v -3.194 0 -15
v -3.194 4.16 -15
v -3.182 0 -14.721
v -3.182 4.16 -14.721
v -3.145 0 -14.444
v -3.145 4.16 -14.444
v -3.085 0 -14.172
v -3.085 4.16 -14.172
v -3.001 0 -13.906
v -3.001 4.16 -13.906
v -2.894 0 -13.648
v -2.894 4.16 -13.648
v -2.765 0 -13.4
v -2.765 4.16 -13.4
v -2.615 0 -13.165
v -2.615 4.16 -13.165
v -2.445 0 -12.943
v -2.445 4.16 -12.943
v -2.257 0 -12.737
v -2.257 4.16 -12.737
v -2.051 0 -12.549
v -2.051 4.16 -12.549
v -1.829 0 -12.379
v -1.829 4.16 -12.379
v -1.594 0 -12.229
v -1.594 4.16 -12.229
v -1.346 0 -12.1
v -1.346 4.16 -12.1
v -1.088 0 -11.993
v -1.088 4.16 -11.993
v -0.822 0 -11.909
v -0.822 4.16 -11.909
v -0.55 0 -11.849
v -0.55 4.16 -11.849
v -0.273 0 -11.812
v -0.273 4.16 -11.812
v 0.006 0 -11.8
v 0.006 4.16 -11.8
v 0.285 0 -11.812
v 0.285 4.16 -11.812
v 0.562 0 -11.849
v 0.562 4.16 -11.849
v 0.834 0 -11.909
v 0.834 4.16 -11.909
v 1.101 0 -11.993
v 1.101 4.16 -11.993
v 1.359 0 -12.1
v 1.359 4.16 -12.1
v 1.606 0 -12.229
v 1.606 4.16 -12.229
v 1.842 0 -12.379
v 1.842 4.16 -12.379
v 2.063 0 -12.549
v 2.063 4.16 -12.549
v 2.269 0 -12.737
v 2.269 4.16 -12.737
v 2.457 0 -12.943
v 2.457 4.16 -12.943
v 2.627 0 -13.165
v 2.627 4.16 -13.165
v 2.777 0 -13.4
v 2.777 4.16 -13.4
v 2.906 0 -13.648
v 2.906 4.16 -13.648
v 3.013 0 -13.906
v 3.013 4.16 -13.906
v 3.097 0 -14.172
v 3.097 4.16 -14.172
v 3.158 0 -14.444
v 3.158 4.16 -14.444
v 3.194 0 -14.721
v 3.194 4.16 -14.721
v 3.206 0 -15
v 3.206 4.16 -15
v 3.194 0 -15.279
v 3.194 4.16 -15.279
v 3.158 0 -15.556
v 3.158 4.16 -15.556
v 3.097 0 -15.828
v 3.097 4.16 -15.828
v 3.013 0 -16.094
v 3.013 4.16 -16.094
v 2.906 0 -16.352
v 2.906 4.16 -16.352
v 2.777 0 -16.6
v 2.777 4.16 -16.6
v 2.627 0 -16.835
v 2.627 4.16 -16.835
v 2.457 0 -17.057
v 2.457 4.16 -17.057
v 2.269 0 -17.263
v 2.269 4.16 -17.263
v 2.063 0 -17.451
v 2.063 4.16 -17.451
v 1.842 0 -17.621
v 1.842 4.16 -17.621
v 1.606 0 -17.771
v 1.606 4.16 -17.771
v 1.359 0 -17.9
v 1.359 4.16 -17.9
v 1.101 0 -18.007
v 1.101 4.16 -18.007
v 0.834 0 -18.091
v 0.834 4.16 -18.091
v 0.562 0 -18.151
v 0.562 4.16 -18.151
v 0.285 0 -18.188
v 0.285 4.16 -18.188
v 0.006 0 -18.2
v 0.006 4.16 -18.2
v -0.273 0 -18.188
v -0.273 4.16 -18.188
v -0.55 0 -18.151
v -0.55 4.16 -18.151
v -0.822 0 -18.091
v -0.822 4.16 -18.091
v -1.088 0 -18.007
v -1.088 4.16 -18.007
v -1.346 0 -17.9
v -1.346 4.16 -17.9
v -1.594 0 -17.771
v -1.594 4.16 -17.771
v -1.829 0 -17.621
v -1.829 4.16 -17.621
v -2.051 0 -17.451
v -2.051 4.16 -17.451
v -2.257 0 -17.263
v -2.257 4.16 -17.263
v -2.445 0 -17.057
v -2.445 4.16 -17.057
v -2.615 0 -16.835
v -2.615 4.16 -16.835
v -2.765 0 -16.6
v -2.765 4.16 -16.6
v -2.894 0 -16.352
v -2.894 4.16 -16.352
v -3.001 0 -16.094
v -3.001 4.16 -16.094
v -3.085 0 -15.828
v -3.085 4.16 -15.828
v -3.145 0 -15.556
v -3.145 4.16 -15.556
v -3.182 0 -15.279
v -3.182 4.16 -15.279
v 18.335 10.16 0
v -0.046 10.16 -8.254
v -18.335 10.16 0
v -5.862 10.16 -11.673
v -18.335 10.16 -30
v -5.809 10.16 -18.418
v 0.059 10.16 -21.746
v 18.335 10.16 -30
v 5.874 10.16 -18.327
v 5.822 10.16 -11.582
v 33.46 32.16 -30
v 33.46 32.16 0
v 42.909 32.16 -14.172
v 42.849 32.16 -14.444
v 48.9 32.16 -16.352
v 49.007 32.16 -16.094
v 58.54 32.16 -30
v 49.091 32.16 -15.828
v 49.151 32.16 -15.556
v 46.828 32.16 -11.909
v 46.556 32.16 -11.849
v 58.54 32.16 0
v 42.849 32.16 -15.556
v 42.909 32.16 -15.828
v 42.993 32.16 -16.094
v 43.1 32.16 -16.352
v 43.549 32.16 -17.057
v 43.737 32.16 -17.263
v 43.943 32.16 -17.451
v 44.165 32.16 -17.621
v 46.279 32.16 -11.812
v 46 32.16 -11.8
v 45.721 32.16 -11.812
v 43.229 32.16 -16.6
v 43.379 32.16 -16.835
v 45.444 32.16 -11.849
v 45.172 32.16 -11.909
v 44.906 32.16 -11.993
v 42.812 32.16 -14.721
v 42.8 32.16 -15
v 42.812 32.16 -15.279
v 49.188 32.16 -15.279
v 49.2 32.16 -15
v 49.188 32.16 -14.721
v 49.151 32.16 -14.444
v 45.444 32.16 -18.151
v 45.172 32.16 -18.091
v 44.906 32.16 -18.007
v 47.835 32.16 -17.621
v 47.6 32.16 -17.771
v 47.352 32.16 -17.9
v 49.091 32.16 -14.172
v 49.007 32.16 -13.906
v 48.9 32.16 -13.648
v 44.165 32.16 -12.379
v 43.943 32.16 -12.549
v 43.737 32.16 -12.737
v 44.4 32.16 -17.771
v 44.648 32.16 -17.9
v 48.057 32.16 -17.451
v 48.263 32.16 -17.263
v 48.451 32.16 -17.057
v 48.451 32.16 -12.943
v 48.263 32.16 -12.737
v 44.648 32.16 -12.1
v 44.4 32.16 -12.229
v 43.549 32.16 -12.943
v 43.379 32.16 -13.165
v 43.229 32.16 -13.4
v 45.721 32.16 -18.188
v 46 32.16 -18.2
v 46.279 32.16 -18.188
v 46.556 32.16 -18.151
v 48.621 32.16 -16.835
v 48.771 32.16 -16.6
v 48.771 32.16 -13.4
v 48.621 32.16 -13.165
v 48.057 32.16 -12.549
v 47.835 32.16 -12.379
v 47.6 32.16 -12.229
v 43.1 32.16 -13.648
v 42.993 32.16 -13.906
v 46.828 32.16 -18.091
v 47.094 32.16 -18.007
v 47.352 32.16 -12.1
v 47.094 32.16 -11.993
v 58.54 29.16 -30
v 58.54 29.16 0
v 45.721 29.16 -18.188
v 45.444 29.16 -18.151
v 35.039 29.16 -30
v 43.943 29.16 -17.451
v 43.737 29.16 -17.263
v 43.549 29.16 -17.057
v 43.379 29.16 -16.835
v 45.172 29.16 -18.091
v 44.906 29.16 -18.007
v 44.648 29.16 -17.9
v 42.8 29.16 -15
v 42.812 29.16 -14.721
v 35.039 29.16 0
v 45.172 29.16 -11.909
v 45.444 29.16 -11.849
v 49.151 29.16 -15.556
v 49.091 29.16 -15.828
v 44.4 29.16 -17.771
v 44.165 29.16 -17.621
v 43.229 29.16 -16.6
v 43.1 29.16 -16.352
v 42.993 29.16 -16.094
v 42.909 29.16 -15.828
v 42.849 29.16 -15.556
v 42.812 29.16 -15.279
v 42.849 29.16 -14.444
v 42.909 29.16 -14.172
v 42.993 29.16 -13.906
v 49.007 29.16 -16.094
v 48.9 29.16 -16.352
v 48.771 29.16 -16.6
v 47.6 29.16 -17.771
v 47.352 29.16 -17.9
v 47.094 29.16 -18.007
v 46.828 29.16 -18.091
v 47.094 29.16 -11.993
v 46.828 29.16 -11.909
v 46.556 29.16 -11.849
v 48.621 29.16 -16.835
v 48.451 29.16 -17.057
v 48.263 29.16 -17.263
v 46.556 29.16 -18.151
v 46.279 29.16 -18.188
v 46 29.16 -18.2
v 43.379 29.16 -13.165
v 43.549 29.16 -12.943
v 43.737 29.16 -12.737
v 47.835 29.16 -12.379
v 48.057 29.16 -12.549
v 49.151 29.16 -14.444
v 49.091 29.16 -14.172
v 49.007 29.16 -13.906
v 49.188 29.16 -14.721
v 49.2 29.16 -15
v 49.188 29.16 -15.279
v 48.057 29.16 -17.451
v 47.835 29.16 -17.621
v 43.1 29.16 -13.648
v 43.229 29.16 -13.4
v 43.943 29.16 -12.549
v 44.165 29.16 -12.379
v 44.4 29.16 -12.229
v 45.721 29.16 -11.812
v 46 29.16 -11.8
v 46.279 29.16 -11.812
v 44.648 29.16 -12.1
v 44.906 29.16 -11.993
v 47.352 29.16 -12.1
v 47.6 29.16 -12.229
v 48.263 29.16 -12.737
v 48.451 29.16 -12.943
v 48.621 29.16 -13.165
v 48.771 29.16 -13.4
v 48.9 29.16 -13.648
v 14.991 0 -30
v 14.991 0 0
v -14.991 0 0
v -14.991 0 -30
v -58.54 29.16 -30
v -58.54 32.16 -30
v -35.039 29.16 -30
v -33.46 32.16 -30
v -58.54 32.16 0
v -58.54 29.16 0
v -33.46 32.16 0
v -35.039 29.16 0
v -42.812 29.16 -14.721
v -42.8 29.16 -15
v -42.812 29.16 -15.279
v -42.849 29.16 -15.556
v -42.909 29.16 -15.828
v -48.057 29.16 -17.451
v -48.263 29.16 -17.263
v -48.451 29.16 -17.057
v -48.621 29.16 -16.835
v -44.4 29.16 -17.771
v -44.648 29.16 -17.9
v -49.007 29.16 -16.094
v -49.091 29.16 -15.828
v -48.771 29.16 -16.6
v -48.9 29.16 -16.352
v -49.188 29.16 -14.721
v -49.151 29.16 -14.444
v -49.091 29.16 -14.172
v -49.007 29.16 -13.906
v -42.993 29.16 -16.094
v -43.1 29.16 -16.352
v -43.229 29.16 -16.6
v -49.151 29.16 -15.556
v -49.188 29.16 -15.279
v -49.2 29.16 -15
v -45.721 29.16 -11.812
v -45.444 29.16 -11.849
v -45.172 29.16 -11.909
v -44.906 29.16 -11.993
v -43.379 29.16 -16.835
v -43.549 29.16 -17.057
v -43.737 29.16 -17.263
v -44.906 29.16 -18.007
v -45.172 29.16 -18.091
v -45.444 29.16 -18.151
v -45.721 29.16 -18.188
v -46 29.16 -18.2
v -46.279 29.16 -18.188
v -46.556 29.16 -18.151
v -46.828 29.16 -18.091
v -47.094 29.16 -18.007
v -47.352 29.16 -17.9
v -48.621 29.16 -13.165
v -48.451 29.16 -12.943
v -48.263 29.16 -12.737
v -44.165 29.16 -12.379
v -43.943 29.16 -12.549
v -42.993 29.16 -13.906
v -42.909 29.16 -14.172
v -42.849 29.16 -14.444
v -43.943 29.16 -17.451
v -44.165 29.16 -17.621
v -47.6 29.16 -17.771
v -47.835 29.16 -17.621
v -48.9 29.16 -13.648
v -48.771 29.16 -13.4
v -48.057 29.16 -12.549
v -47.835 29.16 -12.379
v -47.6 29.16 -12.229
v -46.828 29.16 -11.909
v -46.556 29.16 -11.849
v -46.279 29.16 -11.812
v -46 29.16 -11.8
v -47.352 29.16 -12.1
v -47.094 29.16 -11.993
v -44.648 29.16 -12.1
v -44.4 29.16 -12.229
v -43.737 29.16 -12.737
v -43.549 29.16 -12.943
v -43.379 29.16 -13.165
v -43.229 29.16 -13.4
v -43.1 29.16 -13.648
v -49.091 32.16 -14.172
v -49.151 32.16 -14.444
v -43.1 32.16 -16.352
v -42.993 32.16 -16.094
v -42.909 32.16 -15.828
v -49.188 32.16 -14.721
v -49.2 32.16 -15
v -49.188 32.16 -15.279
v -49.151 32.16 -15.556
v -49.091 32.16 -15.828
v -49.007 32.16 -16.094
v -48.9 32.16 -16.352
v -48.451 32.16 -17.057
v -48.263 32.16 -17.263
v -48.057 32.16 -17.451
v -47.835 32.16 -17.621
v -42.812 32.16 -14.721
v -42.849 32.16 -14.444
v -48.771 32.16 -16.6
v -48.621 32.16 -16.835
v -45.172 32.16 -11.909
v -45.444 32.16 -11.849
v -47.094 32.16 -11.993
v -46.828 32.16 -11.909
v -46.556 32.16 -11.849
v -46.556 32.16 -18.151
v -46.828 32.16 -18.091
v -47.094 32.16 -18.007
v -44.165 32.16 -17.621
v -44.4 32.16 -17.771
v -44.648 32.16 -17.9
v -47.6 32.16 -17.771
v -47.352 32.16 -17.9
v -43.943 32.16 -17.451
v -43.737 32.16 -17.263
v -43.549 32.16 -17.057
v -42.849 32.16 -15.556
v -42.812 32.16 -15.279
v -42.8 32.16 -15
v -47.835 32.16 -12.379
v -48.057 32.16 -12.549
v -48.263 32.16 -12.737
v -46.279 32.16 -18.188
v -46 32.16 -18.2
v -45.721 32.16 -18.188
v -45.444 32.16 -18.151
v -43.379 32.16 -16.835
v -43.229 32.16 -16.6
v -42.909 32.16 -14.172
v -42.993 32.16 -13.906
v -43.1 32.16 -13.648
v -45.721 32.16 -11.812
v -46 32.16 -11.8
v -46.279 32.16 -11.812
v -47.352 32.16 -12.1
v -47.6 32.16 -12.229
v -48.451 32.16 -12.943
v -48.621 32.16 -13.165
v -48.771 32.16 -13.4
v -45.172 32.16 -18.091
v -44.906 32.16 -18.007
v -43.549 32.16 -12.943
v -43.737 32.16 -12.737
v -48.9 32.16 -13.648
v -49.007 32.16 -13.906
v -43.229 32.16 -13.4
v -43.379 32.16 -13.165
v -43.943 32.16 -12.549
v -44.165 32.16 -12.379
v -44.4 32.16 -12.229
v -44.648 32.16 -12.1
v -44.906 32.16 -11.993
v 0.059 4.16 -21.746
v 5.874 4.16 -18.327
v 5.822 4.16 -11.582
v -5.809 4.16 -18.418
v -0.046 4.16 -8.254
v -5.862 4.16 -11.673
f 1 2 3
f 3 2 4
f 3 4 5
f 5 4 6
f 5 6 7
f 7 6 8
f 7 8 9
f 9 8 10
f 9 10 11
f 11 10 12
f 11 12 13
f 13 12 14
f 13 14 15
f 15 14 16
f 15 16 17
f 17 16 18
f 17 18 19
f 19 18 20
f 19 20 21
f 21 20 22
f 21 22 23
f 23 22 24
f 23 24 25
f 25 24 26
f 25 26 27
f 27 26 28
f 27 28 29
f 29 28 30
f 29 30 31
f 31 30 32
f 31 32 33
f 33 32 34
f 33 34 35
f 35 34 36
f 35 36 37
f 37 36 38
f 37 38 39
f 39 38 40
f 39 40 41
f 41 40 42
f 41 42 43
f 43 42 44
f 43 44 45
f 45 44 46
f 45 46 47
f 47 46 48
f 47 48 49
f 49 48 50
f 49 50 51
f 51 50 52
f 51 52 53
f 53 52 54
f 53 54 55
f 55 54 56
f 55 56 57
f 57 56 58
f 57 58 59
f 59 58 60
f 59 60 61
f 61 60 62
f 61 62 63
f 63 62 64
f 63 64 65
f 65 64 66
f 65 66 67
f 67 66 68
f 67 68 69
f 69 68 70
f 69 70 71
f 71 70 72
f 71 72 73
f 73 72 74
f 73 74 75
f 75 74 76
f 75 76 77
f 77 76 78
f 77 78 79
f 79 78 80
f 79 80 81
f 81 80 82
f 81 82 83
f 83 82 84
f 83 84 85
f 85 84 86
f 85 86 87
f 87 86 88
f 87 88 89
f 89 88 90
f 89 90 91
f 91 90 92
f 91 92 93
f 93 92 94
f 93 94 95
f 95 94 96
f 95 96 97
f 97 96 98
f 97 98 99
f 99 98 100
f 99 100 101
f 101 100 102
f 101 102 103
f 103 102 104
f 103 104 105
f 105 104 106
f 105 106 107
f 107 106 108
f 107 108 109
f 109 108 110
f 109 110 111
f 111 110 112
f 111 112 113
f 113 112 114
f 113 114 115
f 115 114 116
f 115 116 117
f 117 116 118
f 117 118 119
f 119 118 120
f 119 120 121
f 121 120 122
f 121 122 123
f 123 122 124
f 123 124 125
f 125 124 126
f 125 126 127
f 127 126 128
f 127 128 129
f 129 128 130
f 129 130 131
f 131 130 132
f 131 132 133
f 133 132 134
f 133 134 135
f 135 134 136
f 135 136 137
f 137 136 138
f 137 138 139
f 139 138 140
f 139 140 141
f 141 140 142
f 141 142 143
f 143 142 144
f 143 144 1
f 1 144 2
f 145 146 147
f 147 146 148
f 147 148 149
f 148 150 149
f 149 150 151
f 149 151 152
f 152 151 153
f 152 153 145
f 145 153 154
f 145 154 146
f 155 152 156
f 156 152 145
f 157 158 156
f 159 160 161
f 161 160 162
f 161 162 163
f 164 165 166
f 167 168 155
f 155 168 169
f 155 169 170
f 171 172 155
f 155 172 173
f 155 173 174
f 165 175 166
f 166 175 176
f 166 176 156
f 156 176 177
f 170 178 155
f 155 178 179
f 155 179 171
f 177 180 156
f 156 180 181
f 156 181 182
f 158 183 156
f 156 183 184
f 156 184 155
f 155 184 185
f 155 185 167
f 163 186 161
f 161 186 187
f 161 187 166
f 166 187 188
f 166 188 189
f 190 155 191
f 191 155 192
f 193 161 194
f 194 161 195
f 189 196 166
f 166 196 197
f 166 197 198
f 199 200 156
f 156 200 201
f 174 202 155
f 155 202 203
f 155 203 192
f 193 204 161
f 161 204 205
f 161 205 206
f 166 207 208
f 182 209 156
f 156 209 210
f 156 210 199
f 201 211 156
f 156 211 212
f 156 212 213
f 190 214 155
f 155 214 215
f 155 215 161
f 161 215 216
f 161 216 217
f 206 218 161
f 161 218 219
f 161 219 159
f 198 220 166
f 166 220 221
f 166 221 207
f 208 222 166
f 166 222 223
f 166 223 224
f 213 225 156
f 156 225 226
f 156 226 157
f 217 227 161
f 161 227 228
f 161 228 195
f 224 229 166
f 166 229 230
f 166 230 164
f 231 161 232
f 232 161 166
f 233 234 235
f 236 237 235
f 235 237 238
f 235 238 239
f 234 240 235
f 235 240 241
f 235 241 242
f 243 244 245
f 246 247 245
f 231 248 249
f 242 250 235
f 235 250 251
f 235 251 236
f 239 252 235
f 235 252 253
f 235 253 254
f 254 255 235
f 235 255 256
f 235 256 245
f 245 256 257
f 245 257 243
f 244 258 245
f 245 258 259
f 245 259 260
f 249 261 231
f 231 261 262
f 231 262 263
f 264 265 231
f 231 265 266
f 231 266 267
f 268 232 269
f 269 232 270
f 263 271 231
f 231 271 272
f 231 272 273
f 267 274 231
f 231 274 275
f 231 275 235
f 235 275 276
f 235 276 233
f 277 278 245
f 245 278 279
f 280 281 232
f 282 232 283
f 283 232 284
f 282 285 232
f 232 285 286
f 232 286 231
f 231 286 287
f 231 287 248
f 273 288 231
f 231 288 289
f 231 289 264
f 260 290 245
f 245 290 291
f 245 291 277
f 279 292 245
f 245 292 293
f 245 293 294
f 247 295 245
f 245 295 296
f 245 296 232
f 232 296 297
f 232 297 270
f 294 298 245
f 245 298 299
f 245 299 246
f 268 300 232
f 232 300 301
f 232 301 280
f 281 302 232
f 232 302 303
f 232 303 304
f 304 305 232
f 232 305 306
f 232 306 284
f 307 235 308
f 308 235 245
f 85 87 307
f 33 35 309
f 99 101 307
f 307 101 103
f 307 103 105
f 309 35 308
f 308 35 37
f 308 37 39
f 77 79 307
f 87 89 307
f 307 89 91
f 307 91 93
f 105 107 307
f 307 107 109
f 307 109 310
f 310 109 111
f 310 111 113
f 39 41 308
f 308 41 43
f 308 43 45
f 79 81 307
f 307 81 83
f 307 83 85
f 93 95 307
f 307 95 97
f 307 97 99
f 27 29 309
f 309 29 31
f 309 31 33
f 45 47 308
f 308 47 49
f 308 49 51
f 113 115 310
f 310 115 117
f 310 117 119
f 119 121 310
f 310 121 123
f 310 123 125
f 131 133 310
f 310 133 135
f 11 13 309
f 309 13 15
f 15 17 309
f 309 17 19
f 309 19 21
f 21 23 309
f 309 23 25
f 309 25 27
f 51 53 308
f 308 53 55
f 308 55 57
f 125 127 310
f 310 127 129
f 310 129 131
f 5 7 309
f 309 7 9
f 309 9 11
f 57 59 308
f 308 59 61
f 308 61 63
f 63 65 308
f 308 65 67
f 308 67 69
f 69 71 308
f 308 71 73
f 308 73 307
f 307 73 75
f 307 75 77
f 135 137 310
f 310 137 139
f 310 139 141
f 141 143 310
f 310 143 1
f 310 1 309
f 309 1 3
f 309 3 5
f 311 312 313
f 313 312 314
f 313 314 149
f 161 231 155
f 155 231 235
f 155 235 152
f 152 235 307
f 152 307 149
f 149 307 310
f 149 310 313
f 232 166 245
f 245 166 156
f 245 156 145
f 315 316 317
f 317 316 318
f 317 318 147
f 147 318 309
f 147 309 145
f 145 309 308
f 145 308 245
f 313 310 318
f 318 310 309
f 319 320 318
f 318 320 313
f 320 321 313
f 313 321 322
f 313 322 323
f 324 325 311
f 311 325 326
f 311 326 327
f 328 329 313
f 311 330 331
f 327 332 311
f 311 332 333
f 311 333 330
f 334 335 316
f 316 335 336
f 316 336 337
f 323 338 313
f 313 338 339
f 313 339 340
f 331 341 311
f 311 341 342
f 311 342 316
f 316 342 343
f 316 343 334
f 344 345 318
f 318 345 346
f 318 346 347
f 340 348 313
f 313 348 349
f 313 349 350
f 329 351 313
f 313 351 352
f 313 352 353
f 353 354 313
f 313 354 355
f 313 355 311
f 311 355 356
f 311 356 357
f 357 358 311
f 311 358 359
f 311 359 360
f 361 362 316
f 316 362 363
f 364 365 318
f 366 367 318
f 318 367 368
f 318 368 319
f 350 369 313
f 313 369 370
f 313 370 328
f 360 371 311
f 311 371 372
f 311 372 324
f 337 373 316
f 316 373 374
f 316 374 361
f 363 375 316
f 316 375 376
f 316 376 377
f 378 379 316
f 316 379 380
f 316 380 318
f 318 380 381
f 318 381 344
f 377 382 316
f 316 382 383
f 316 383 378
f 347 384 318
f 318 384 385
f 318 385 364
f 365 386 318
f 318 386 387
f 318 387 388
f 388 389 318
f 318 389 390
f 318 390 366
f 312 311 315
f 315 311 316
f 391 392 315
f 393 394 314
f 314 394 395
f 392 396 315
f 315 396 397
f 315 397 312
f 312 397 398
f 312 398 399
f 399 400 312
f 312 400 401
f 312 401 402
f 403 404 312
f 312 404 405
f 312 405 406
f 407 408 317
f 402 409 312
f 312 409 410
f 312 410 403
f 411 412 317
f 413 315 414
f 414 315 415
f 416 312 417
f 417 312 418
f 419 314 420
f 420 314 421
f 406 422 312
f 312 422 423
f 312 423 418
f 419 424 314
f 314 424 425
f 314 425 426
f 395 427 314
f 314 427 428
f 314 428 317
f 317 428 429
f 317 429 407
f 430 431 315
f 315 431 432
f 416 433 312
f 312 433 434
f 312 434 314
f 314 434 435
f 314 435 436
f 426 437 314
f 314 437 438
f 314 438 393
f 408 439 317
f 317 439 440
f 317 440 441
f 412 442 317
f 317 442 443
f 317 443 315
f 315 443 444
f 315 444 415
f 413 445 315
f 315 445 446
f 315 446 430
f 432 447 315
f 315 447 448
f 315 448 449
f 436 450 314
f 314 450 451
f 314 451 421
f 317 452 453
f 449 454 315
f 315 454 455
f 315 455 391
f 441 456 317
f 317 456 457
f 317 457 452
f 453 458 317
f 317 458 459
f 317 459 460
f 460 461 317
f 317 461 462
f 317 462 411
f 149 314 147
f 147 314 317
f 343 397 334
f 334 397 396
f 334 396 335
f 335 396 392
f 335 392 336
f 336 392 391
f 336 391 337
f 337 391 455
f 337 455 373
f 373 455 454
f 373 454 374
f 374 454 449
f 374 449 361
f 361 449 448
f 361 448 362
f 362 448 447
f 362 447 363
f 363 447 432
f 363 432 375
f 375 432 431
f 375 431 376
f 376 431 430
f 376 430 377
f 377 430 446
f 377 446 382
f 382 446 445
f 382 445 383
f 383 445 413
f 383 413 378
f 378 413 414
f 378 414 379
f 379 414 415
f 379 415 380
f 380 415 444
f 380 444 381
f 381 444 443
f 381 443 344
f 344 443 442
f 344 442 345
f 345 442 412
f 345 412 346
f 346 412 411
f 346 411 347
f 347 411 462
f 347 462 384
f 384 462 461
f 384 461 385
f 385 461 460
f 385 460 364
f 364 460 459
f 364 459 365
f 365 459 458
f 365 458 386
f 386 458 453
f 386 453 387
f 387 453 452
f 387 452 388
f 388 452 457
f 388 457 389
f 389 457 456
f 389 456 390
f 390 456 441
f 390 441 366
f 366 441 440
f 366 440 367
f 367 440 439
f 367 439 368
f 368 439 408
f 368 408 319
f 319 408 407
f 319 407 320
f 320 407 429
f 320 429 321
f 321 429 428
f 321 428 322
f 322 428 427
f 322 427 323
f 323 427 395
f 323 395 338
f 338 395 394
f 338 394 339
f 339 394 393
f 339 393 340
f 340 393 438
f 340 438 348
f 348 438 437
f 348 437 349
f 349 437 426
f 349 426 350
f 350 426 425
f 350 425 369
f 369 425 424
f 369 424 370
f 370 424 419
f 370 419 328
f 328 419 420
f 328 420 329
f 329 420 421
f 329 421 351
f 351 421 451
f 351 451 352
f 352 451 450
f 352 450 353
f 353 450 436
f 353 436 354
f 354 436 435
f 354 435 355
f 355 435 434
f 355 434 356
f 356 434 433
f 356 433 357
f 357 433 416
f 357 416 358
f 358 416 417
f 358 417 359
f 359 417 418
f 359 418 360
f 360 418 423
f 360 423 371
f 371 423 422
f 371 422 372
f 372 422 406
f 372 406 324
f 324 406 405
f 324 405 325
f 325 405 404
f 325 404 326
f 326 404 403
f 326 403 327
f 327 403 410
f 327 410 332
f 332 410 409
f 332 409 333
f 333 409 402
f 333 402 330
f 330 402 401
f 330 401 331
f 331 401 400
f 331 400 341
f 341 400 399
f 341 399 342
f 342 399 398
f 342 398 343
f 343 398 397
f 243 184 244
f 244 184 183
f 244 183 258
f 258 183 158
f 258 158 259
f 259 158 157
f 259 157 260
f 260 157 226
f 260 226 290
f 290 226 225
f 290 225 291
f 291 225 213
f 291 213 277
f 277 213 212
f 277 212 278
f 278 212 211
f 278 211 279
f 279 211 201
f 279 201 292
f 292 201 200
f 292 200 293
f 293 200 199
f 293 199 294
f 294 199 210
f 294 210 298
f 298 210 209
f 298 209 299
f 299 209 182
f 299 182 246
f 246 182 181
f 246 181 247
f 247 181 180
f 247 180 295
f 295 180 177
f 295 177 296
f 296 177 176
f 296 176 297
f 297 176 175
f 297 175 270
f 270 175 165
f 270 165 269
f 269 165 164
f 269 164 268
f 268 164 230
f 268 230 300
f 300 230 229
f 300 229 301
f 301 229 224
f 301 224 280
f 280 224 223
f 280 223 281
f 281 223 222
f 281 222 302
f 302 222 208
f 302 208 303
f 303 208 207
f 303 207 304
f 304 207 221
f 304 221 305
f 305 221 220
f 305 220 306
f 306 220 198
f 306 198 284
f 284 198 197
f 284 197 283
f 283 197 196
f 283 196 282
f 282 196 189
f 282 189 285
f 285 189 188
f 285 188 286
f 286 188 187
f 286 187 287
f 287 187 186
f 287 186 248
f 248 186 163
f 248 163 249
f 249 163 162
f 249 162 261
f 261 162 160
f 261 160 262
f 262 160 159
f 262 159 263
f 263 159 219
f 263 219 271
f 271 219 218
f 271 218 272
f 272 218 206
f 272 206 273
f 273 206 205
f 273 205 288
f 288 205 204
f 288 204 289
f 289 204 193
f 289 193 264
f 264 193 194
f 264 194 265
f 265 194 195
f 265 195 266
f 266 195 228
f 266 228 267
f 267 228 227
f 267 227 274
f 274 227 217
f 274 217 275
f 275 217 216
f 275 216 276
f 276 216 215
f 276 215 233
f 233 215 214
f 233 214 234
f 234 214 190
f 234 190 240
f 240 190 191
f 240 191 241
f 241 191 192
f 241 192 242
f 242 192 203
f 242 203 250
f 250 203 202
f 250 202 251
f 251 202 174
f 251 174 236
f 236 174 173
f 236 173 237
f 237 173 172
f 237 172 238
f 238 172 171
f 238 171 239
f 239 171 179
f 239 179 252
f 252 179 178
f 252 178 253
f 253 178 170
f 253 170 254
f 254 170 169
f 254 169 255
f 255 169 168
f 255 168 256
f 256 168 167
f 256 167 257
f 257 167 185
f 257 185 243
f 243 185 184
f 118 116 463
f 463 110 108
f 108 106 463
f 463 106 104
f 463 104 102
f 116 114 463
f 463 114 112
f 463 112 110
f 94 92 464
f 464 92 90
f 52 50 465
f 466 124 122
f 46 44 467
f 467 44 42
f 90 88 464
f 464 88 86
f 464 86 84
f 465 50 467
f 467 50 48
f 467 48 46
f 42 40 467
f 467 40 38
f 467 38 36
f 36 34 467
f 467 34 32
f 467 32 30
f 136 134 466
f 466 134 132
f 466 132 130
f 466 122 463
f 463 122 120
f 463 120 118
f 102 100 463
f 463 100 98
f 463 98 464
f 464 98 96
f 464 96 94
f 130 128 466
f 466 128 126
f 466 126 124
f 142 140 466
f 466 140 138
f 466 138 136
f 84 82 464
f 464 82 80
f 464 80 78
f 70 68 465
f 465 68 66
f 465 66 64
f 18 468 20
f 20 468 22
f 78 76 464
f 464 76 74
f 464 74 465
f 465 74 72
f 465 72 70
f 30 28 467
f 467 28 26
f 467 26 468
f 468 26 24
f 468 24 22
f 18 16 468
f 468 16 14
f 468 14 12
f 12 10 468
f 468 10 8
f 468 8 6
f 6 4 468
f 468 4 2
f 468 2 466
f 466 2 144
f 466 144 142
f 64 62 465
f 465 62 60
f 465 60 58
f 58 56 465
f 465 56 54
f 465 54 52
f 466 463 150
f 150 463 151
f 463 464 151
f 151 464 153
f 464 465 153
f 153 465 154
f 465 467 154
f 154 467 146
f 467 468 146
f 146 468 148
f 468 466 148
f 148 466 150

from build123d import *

# Parameters (mm, degrees)
BOSS_EXTRUDE1_DEPTH = 30
SKETCH2_R           = 3.2
CUT_EXTRUDE1_DEPTH  = 3
CUT_EXTRUDE2_REACH  = 12.16
SKETCH5_R           = 3.2
CUT_EXTRUDE3_DEPTH  = 6


with BuildPart() as part:
    # Sketch1 → Boss-Extrude1 (new body)
    with BuildSketch(Plane.XY):
        Polygon((0, 0), (14.990525772, 0), (35.038513576, 29.16), (58.53955614, 29.16), (58.53955614, 32.16), (33.46044386, 32.16), (18.335075832, 10.16), (0, 10.16), align=None)
    boss_extrude1 = extrude(amount=-BOSS_EXTRUDE1_DEPTH)

    # Mirror1: Boss-Extrude1 across plane
    add(boss_extrude1.mirror(Plane(origin=(0, 10.16, -30), x_dir=(0, 0, 1), z_dir=(-1, 0, 0))))

    # Sketch2 → Cut-Extrude1 (cut)
    with BuildSketch(Plane(origin=(0, 32.16, 0), x_dir=(1, 0, 0), z_dir=(0, 1, 0))):
        with Locations((-46, 15)):
            Circle(SKETCH2_R)
    cut_extrude1 = extrude(amount=-CUT_EXTRUDE1_DEPTH, mode=Mode.SUBTRACT)

    # Mirror2: Cut-Extrude1 across plane
    add(cut_extrude1.mirror(Plane(origin=(0, 0, 0), x_dir=(0, 0, 1), z_dir=(1, 0, 0))), mode=Mode.SUBTRACT)

    # Sketch5 → Cut-Extrude2 (cut, up to next)
    with BuildSketch(Plane(origin=(0, 10.16, 0), x_dir=(1, 0, 0), z_dir=(0, 1, 0)), mode=Mode.PRIVATE) as cut_extrude2_sk1:
        with Locations((0.006129123, 15)):
            Circle(SKETCH5_R)
    cut_extrude2_tool1 = extrude(cut_extrude2_sk1.sketch, amount=-CUT_EXTRUDE2_REACH, mode=Mode.PRIVATE) & part.part
    add(cut_extrude2_tool1.solids().sort_by_distance((0.006129, 10.16, -15))[0], mode=Mode.SUBTRACT)

    # Sketch6 → Cut-Extrude3 (cut)
    with BuildSketch(Plane(origin=(0, 10.16, 0), x_dir=(1, 0, 0), z_dir=(0, 1, 0))):
        Polygon((-5.809462538, 18.418212831), (-5.861925855, 11.672656299), (-0.046334193, 8.254443467), (5.821720785, 11.581787169), (5.874184102, 18.327343701), (0.05859244, 21.745556533), align=None)
    extrude(amount=-CUT_EXTRUDE3_DEPTH, mode=Mode.SUBTRACT)


solid = part.part
